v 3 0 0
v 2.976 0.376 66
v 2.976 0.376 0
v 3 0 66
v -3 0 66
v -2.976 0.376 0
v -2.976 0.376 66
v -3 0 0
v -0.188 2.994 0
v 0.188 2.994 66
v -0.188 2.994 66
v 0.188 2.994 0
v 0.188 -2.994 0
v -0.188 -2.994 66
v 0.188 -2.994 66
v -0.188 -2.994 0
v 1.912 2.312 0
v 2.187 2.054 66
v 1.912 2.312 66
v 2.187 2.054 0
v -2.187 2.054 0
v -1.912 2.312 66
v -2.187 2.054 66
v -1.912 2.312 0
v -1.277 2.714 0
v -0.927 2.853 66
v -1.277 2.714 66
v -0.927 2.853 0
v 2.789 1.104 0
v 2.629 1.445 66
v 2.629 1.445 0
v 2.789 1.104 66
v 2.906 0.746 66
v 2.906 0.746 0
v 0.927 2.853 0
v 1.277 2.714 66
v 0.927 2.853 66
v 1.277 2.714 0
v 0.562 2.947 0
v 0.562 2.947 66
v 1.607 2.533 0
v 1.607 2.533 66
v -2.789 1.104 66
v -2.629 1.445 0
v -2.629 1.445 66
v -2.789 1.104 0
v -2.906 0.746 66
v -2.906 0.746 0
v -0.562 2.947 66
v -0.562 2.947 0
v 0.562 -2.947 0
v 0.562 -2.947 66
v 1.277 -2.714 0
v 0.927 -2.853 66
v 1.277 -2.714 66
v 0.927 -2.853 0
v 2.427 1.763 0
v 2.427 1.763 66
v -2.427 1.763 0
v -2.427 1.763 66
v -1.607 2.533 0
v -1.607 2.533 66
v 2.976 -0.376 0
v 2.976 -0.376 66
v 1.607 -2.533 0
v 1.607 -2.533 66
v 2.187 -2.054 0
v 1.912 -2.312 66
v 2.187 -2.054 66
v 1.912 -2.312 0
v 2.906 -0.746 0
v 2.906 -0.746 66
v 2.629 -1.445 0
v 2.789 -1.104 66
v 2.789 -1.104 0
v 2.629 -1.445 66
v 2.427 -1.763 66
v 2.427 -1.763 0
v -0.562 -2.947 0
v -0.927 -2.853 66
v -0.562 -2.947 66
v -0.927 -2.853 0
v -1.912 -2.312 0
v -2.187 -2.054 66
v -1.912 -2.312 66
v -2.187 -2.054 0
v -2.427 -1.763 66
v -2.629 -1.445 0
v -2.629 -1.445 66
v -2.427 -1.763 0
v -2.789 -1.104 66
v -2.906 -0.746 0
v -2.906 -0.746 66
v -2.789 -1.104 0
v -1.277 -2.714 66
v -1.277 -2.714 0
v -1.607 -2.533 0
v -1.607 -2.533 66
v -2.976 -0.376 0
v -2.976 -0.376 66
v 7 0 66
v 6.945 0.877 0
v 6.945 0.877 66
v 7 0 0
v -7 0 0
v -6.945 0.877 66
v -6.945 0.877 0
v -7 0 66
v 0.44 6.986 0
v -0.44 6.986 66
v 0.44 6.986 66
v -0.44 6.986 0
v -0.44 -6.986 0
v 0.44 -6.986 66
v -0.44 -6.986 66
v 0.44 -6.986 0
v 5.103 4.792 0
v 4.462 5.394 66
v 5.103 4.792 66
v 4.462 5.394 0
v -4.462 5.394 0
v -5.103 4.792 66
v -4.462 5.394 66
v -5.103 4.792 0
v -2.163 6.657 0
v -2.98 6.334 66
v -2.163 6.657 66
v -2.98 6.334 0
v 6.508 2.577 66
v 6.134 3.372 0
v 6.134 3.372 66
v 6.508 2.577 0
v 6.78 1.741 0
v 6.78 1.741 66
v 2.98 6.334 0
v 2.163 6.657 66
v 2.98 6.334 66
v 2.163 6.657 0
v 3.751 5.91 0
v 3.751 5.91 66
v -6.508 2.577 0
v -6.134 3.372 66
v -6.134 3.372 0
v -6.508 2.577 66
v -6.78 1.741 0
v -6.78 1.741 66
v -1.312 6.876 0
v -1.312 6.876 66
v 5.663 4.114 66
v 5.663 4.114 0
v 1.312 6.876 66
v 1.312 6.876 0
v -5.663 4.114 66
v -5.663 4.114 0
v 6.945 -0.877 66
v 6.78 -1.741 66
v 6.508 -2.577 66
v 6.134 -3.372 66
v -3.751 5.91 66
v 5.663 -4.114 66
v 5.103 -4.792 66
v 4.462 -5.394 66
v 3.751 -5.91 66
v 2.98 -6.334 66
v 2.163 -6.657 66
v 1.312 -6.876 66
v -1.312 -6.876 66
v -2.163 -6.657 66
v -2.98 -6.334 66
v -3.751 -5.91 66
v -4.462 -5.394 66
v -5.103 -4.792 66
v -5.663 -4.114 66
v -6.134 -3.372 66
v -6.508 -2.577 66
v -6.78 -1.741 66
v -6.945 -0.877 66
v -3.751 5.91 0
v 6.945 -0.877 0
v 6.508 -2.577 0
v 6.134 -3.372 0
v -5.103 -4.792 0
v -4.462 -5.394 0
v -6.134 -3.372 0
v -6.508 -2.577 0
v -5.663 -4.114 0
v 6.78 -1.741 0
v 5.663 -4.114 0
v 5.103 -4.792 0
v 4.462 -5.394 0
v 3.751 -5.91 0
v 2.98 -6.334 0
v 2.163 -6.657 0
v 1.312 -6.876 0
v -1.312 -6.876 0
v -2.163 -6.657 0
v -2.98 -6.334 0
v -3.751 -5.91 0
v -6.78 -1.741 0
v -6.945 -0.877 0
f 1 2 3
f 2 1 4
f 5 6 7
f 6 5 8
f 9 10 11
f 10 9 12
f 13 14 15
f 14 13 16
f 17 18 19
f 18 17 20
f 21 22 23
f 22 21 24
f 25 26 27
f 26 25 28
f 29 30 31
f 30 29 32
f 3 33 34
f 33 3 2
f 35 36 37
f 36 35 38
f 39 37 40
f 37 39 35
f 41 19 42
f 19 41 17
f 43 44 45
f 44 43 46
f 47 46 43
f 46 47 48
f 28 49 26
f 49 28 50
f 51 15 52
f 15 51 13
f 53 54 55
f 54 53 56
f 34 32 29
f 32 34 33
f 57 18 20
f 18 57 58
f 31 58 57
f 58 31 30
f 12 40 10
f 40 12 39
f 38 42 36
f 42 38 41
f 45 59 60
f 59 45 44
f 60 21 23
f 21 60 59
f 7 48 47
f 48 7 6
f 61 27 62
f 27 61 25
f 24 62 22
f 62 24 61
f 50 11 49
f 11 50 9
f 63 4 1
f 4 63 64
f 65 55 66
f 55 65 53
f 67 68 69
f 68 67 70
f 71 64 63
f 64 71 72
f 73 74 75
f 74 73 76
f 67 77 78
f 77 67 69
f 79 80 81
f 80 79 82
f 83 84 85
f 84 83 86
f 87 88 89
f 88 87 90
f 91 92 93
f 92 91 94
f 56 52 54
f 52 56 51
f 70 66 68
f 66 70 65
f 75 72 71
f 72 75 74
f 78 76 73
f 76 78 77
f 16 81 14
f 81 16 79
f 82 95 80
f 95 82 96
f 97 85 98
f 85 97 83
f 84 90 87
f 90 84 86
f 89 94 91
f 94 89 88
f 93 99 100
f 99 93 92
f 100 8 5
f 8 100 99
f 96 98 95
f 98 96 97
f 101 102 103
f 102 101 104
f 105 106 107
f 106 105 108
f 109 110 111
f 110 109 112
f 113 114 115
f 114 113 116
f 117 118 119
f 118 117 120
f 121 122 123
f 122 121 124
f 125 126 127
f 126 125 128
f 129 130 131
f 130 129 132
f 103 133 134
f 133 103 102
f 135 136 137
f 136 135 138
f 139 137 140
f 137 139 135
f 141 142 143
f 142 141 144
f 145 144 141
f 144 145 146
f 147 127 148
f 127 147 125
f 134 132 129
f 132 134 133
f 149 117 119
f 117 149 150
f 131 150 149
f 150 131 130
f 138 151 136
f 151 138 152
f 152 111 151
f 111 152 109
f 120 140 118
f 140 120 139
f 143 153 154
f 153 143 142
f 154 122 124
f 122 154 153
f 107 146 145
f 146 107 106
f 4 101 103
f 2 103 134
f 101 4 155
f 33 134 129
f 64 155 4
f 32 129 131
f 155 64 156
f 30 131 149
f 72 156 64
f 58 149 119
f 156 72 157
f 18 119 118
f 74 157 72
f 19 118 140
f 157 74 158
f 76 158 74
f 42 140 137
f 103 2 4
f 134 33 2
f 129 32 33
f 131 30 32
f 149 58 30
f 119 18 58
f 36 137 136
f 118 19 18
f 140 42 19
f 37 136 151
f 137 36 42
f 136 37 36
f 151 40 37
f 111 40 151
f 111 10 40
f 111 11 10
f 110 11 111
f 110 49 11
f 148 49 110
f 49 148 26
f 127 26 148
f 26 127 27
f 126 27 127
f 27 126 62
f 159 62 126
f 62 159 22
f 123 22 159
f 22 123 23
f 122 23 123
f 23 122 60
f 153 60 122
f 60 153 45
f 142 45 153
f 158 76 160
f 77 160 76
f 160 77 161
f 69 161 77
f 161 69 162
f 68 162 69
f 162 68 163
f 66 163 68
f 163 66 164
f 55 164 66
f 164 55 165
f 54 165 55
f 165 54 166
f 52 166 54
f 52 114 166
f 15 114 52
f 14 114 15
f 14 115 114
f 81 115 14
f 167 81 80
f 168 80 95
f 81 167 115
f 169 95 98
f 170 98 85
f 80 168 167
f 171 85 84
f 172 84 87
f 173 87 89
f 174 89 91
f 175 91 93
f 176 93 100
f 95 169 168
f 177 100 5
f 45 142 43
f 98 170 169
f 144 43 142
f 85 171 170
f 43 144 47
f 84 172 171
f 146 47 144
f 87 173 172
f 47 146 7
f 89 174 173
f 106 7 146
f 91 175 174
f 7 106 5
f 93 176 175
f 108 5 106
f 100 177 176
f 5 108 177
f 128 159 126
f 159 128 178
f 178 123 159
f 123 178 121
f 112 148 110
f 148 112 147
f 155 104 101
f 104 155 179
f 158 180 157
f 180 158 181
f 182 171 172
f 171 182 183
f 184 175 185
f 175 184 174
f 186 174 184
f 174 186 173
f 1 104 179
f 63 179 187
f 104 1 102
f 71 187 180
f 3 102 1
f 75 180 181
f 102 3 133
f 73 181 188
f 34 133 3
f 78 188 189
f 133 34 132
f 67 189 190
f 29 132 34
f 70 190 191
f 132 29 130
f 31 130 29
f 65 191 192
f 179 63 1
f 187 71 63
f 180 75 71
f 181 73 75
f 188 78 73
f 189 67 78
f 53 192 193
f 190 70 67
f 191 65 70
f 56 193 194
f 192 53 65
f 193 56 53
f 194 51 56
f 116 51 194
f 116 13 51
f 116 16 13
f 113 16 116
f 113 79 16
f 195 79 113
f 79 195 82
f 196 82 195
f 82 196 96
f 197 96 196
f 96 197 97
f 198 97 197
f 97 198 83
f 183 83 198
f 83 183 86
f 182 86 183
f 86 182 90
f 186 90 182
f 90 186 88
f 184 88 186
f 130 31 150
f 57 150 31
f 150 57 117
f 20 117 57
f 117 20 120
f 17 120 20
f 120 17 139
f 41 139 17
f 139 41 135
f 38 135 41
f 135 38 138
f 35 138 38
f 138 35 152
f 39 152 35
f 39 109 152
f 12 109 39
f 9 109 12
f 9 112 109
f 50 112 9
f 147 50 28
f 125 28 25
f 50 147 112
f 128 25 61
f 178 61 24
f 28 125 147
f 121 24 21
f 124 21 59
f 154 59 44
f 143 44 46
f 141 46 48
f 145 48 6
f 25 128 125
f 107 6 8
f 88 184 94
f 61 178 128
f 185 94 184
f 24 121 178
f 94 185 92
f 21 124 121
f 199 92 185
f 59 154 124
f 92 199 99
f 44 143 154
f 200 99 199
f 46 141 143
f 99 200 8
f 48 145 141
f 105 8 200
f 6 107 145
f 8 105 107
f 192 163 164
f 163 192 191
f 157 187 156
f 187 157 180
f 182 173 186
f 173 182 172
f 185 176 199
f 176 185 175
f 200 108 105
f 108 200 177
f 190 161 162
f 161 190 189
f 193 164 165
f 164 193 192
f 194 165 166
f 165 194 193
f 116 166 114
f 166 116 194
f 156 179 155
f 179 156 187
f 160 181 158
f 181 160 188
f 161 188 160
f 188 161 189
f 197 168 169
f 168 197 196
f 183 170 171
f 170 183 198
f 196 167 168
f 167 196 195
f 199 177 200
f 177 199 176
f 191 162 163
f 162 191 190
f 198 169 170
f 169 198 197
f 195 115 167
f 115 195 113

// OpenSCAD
$fn = 50;


difference() {
	union() {
		cylinder(h = 66, r = 7.0000000000);
	}
	union() {
		translate(v = [0, 0, -100]) {
			cylinder(h = 200, r = 3.0000000000);
		}
		translate(v = [0, 0, -100]) {
			cylinder(h = 200, r = 1.5000000000);
		}
	}
}
